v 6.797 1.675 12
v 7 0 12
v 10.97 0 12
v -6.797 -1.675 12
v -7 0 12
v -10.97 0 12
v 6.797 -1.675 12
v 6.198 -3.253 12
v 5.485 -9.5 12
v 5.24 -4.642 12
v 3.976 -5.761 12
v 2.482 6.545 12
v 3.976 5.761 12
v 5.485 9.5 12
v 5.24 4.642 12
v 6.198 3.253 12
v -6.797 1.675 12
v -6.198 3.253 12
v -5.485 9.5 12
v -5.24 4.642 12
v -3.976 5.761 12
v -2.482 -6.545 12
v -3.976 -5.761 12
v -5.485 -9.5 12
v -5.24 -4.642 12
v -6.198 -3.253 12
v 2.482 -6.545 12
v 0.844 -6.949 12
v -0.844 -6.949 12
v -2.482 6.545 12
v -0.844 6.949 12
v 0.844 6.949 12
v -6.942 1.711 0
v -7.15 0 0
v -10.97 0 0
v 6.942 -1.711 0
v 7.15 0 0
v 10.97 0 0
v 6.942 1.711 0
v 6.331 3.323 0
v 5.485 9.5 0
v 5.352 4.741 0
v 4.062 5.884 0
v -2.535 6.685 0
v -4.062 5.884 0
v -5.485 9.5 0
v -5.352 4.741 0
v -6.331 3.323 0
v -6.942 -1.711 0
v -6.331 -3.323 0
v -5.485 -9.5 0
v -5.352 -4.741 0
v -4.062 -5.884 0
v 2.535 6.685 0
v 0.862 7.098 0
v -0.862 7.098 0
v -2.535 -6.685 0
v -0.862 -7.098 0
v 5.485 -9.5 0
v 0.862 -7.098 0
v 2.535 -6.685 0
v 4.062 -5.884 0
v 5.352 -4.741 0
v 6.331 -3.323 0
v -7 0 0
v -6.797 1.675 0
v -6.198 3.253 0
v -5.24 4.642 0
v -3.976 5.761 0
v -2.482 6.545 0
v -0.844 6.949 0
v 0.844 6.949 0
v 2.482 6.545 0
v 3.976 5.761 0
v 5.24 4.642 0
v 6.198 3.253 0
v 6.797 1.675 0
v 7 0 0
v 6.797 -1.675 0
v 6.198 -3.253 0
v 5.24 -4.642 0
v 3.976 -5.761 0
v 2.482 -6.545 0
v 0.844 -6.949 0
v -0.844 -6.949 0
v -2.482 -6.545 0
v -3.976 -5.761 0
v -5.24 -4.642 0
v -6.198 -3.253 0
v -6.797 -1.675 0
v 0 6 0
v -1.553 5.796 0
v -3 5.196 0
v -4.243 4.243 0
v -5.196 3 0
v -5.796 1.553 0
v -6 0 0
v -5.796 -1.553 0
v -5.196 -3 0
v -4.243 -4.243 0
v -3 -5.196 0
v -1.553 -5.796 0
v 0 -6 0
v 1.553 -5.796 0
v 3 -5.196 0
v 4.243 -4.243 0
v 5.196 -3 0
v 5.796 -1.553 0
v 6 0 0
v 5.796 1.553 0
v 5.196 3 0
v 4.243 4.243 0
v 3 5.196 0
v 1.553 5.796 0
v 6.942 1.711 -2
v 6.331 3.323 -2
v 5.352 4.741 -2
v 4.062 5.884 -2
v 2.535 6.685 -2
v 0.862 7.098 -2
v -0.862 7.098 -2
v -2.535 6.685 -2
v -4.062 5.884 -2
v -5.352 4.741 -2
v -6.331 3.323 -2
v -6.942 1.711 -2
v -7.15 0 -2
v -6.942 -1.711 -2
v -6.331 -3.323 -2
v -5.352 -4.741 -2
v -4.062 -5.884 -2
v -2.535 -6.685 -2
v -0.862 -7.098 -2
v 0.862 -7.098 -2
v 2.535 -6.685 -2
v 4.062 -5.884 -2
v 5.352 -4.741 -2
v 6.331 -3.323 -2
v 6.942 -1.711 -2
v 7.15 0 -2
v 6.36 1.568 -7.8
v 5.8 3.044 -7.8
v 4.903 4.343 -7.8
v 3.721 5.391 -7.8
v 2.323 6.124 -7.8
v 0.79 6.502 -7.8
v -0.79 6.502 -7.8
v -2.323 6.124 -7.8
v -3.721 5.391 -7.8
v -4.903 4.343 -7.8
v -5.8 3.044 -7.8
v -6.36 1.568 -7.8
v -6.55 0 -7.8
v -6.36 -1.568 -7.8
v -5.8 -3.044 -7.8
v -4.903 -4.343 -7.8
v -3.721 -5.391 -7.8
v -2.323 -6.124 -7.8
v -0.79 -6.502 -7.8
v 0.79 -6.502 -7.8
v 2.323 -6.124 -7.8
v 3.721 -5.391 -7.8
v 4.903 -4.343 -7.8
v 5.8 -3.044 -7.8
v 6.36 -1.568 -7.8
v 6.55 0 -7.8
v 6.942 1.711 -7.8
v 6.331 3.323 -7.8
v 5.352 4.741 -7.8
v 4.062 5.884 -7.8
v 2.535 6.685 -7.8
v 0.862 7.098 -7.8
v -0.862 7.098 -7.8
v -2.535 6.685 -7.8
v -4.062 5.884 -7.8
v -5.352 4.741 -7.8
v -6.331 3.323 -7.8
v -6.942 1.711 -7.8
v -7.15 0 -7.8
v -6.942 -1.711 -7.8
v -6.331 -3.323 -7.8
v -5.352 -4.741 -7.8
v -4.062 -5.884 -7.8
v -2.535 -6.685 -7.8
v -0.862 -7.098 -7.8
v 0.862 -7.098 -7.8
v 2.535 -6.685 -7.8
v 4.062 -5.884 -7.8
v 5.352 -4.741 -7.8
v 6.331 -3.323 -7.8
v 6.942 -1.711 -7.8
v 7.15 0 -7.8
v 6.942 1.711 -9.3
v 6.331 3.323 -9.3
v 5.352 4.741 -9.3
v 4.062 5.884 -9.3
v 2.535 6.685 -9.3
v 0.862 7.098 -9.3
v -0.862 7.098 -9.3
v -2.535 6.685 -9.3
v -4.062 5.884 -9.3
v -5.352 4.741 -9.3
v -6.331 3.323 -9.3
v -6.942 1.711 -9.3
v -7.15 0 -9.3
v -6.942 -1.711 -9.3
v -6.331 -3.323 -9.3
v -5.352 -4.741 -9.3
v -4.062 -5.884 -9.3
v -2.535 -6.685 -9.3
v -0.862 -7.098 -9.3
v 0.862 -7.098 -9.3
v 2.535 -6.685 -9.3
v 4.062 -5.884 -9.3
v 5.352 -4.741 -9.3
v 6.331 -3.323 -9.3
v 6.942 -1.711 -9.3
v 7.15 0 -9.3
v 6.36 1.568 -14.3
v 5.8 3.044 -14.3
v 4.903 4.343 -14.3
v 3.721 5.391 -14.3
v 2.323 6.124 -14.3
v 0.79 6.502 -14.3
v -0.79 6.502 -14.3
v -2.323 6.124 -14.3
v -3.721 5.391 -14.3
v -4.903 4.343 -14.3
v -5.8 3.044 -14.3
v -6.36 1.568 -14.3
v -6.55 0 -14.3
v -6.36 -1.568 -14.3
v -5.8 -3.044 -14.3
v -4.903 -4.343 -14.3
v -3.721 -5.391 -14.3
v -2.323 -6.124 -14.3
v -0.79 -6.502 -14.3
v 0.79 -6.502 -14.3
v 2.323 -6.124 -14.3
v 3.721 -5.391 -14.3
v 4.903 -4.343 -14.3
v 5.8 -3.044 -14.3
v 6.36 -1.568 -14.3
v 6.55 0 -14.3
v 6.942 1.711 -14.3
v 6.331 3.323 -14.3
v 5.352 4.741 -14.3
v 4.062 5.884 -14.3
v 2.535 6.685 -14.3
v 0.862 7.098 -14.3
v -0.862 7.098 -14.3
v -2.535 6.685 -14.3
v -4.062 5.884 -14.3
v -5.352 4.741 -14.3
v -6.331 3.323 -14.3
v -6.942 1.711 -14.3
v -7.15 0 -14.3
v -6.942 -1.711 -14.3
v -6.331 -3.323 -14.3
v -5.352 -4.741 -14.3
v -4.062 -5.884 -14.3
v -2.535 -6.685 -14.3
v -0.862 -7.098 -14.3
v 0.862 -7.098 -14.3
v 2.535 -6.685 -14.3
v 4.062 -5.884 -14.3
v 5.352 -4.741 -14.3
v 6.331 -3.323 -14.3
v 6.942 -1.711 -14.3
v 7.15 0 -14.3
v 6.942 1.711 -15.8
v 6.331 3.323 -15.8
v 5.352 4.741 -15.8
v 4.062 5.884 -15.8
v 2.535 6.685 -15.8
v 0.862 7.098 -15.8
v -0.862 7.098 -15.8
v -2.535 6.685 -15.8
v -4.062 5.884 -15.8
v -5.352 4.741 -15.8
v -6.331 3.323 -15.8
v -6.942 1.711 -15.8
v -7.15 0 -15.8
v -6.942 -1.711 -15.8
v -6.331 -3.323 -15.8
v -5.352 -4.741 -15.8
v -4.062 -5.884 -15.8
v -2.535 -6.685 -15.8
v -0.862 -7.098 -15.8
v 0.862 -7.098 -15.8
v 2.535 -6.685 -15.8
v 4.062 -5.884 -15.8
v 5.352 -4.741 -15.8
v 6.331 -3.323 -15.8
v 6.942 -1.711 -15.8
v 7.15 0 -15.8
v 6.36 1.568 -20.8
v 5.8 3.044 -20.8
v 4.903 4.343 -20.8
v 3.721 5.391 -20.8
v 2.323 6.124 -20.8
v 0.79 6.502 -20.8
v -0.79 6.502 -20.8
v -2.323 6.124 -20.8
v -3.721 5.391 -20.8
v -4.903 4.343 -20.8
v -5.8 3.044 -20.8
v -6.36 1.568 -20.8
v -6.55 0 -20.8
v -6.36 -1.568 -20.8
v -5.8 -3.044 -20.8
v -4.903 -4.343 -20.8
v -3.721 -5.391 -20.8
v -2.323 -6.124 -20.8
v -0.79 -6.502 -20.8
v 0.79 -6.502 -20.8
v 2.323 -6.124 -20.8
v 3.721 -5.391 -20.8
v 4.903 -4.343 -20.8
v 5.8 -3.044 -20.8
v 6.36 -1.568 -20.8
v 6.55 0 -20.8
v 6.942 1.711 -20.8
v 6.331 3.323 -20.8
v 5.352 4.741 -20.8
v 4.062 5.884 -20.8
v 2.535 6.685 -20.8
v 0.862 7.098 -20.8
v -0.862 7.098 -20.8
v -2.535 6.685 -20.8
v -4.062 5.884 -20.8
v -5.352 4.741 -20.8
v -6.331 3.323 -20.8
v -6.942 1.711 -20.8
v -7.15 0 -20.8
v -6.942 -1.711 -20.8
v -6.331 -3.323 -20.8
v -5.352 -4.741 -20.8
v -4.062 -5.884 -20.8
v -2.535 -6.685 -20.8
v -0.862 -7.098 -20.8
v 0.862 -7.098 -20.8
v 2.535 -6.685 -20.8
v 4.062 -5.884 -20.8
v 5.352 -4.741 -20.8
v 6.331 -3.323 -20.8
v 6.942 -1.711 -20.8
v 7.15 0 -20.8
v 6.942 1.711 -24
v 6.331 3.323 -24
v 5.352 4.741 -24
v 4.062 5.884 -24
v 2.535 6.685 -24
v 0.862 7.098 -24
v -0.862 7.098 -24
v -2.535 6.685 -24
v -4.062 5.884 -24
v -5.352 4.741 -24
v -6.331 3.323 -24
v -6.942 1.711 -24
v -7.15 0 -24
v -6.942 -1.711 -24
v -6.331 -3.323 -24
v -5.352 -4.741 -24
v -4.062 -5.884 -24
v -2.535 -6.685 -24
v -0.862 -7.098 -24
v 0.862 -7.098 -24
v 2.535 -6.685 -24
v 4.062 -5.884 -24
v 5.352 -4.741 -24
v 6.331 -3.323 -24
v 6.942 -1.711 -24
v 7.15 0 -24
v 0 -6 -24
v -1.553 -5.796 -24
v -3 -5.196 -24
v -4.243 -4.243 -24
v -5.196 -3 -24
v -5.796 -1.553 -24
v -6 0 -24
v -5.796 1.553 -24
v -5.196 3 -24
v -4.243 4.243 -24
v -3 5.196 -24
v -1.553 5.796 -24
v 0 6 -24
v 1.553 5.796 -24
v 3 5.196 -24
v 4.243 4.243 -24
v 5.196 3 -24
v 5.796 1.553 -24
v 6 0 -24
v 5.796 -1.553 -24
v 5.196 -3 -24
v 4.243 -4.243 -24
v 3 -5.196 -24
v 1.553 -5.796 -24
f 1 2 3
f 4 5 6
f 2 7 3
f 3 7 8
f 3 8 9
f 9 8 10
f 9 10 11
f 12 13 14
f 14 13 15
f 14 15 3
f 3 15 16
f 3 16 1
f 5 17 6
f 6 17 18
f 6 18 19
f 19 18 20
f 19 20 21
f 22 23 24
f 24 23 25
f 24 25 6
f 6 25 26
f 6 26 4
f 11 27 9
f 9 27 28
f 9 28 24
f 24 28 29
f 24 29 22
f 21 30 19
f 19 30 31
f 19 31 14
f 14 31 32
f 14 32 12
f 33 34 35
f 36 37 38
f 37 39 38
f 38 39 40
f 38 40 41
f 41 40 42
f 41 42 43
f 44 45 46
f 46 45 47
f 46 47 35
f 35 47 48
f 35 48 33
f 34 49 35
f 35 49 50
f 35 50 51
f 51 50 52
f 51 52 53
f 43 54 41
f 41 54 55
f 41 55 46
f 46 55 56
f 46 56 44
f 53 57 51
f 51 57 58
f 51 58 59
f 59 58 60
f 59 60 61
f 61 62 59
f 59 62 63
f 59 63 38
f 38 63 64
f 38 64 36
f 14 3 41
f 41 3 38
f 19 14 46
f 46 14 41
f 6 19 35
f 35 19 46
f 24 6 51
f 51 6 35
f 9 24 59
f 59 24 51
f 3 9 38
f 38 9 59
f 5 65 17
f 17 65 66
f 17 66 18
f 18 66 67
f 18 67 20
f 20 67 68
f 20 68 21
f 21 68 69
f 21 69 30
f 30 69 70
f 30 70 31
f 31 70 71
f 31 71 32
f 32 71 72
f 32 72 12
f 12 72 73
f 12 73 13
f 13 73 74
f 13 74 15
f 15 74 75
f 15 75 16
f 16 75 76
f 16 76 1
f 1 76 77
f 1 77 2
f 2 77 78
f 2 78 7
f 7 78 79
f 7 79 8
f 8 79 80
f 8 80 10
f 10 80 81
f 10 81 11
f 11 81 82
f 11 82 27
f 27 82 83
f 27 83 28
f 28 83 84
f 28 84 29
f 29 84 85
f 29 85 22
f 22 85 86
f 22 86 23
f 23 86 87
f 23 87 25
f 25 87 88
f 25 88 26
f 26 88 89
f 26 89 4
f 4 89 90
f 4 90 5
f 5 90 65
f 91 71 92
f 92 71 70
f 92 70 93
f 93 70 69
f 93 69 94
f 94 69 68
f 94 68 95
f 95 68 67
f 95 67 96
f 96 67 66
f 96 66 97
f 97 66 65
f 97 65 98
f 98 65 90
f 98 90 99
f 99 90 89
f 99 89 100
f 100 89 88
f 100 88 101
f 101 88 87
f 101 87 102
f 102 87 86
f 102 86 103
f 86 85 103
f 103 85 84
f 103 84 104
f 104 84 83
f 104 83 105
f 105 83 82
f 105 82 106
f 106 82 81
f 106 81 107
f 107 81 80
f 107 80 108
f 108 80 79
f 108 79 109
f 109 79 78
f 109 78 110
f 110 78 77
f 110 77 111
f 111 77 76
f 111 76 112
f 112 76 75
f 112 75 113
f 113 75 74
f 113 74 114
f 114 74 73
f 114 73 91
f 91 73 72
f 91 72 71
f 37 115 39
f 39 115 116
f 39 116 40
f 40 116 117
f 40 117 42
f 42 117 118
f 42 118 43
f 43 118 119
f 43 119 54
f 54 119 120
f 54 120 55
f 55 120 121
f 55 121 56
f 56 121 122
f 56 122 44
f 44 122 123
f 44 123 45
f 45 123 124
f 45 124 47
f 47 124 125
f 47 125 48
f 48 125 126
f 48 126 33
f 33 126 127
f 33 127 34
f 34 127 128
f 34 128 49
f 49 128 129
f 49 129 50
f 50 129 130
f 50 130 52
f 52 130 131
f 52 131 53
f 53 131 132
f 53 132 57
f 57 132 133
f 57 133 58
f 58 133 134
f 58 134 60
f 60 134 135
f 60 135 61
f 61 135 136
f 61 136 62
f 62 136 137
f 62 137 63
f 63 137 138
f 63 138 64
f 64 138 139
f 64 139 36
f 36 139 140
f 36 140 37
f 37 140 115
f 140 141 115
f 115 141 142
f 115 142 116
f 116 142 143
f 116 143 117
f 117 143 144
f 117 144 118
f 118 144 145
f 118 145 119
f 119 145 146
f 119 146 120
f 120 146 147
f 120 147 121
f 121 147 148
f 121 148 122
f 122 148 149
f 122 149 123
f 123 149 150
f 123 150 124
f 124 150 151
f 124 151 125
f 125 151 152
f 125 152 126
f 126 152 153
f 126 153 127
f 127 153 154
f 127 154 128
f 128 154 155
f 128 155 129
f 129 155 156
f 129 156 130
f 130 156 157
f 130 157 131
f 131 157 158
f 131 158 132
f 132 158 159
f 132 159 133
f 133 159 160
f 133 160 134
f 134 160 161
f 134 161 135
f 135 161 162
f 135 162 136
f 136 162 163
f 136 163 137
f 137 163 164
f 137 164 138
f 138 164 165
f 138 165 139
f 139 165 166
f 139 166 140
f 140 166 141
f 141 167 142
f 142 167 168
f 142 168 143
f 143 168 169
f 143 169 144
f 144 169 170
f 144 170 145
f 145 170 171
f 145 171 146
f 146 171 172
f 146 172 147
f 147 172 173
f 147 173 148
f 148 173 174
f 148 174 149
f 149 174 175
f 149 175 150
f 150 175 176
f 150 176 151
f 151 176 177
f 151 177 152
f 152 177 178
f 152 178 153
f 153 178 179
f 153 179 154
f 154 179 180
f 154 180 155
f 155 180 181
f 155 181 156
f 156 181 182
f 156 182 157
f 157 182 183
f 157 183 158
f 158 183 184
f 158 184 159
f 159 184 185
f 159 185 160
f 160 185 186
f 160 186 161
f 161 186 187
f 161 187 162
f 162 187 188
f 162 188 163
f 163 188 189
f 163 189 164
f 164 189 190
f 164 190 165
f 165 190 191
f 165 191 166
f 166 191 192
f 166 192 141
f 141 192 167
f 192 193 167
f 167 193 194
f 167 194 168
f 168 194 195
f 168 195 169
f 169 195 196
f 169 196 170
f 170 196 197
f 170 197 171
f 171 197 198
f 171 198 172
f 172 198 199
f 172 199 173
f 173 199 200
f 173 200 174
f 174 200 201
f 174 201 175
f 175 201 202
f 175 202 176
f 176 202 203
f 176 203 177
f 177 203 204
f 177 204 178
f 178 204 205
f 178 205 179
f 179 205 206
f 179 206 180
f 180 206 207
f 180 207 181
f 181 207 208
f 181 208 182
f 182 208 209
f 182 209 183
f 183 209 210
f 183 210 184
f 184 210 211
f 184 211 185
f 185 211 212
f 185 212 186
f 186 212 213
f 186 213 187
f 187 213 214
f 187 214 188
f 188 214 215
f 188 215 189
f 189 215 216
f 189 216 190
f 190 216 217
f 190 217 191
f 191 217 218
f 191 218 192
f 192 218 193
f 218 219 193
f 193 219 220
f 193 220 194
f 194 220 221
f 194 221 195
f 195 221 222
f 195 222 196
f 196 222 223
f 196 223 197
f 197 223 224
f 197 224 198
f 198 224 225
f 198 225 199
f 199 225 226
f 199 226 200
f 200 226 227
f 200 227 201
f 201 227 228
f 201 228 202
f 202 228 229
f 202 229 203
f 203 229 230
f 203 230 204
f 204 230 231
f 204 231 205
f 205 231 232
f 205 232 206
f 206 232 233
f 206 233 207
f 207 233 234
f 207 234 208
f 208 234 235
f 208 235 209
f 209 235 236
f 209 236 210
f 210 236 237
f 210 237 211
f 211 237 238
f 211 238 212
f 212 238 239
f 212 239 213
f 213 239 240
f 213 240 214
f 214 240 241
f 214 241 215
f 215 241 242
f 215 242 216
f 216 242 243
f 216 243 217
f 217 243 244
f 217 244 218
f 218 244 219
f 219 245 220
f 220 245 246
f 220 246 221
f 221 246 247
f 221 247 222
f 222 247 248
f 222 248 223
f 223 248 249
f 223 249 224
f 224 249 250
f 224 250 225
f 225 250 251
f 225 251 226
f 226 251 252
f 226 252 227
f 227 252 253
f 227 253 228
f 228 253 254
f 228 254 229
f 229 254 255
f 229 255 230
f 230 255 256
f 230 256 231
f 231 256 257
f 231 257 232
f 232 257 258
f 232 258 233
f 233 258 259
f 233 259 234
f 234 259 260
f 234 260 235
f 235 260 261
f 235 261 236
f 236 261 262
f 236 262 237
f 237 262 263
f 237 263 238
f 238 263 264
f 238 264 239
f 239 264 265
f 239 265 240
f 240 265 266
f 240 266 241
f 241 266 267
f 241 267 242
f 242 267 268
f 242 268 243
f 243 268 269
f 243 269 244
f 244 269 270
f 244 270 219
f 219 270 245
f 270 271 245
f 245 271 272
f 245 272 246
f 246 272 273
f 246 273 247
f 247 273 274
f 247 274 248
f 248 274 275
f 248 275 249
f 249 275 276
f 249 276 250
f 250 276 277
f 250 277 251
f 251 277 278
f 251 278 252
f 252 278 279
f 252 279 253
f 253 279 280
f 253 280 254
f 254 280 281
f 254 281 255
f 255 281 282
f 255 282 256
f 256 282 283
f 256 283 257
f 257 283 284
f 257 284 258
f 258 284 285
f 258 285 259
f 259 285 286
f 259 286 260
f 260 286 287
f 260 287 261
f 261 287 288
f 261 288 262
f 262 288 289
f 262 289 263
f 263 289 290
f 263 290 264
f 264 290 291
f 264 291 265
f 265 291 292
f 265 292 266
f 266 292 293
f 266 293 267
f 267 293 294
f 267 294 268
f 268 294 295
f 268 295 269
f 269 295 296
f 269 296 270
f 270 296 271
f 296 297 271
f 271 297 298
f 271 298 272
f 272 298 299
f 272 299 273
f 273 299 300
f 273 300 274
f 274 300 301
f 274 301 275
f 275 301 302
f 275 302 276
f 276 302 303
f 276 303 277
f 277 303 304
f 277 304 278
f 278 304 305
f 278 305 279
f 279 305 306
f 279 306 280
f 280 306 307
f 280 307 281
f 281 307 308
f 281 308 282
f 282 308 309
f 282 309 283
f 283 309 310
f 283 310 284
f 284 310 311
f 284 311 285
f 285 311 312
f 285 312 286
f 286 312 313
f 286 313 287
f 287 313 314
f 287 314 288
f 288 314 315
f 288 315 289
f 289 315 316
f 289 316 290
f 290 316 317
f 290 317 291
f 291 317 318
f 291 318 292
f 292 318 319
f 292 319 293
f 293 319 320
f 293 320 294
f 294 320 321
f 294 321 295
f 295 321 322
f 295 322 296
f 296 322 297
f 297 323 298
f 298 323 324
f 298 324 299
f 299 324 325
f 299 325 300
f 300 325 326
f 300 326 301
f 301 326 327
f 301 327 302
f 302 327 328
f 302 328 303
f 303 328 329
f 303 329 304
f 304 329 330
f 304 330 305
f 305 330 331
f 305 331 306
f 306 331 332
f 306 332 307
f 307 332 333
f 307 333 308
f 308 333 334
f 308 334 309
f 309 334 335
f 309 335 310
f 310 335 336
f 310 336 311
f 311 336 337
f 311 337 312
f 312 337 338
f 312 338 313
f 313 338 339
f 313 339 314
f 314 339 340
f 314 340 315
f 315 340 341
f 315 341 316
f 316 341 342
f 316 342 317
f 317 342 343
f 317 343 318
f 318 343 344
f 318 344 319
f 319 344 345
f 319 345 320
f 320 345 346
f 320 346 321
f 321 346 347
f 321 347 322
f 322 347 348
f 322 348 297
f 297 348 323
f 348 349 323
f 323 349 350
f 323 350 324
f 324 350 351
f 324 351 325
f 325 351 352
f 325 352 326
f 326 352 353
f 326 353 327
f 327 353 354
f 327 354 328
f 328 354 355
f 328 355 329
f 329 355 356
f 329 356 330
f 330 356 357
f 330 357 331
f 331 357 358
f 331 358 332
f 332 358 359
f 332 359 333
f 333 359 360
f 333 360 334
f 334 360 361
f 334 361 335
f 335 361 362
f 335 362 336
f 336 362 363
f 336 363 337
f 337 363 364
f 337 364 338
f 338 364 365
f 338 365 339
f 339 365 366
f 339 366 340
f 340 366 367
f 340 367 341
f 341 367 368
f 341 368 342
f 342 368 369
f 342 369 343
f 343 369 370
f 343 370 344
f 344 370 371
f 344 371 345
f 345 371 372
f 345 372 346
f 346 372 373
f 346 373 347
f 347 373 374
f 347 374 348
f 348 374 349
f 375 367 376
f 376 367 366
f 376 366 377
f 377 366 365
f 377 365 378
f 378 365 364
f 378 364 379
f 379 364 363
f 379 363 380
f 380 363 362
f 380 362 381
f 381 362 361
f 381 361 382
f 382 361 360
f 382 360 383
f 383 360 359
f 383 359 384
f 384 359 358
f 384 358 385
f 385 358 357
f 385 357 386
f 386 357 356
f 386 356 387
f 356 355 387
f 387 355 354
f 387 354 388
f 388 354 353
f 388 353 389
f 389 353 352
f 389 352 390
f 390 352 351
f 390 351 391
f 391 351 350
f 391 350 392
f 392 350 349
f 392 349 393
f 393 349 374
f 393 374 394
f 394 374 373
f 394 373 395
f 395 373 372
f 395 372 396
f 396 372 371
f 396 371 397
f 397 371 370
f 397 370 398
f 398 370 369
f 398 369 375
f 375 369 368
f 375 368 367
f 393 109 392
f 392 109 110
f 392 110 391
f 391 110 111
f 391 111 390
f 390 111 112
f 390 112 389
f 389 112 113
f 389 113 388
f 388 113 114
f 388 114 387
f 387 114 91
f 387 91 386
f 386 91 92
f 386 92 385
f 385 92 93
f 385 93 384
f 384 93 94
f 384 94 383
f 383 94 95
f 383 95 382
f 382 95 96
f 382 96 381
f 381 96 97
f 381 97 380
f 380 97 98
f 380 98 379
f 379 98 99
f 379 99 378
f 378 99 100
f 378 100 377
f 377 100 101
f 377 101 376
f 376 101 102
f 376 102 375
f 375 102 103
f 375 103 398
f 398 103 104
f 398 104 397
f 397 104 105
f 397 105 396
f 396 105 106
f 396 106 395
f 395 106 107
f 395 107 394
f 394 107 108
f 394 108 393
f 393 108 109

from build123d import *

# Parameters (mm, degrees)
SKETCH_1_R      = 7
EXTRUDE_1_DEPTH = 12


with BuildPart() as part:
    # 草图1 → 凸台-拉伸1 (new body)
    with BuildSketch(Plane.XY):
        Polygon((5.484827557, 9.5), (-5.484827557, 9.5), (-10.969655115, 0), (-5.484827557, -9.5), (5.484827557, -9.5), (10.969655115, 0), align=None)
        Circle(SKETCH_1_R, mode=Mode.SUBTRACT)
    extrude(amount=EXTRUDE_1_DEPTH)

    # 草图2 → 旋转1 (revolve)
    with BuildSketch(Plane(origin=(0, 0, 0), x_dir=(1, 0, 0), z_dir=(0, 1, 0)), mode=Mode.PRIVATE) as revolve_1_sk:
        Polygon((-7.15, 0), (-7.15, 2), (-6.55, 7.8), (-7.15, 7.8), (-7.15, 9.3), (-6.55, 14.3), (-7.15, 14.3), (-7.15, 15.8), (-6.55, 20.8), (-7.15, 20.8), (-7.15, 24), (-6, 24), (-6, 0), align=None)
    revolve(revolve_1_sk.sketch.rotate(Axis((0, 0, 0), (0, 0, -1)), 180), axis=Axis((0, 0, 0), (0, 0, -1)))


solid = part.part
